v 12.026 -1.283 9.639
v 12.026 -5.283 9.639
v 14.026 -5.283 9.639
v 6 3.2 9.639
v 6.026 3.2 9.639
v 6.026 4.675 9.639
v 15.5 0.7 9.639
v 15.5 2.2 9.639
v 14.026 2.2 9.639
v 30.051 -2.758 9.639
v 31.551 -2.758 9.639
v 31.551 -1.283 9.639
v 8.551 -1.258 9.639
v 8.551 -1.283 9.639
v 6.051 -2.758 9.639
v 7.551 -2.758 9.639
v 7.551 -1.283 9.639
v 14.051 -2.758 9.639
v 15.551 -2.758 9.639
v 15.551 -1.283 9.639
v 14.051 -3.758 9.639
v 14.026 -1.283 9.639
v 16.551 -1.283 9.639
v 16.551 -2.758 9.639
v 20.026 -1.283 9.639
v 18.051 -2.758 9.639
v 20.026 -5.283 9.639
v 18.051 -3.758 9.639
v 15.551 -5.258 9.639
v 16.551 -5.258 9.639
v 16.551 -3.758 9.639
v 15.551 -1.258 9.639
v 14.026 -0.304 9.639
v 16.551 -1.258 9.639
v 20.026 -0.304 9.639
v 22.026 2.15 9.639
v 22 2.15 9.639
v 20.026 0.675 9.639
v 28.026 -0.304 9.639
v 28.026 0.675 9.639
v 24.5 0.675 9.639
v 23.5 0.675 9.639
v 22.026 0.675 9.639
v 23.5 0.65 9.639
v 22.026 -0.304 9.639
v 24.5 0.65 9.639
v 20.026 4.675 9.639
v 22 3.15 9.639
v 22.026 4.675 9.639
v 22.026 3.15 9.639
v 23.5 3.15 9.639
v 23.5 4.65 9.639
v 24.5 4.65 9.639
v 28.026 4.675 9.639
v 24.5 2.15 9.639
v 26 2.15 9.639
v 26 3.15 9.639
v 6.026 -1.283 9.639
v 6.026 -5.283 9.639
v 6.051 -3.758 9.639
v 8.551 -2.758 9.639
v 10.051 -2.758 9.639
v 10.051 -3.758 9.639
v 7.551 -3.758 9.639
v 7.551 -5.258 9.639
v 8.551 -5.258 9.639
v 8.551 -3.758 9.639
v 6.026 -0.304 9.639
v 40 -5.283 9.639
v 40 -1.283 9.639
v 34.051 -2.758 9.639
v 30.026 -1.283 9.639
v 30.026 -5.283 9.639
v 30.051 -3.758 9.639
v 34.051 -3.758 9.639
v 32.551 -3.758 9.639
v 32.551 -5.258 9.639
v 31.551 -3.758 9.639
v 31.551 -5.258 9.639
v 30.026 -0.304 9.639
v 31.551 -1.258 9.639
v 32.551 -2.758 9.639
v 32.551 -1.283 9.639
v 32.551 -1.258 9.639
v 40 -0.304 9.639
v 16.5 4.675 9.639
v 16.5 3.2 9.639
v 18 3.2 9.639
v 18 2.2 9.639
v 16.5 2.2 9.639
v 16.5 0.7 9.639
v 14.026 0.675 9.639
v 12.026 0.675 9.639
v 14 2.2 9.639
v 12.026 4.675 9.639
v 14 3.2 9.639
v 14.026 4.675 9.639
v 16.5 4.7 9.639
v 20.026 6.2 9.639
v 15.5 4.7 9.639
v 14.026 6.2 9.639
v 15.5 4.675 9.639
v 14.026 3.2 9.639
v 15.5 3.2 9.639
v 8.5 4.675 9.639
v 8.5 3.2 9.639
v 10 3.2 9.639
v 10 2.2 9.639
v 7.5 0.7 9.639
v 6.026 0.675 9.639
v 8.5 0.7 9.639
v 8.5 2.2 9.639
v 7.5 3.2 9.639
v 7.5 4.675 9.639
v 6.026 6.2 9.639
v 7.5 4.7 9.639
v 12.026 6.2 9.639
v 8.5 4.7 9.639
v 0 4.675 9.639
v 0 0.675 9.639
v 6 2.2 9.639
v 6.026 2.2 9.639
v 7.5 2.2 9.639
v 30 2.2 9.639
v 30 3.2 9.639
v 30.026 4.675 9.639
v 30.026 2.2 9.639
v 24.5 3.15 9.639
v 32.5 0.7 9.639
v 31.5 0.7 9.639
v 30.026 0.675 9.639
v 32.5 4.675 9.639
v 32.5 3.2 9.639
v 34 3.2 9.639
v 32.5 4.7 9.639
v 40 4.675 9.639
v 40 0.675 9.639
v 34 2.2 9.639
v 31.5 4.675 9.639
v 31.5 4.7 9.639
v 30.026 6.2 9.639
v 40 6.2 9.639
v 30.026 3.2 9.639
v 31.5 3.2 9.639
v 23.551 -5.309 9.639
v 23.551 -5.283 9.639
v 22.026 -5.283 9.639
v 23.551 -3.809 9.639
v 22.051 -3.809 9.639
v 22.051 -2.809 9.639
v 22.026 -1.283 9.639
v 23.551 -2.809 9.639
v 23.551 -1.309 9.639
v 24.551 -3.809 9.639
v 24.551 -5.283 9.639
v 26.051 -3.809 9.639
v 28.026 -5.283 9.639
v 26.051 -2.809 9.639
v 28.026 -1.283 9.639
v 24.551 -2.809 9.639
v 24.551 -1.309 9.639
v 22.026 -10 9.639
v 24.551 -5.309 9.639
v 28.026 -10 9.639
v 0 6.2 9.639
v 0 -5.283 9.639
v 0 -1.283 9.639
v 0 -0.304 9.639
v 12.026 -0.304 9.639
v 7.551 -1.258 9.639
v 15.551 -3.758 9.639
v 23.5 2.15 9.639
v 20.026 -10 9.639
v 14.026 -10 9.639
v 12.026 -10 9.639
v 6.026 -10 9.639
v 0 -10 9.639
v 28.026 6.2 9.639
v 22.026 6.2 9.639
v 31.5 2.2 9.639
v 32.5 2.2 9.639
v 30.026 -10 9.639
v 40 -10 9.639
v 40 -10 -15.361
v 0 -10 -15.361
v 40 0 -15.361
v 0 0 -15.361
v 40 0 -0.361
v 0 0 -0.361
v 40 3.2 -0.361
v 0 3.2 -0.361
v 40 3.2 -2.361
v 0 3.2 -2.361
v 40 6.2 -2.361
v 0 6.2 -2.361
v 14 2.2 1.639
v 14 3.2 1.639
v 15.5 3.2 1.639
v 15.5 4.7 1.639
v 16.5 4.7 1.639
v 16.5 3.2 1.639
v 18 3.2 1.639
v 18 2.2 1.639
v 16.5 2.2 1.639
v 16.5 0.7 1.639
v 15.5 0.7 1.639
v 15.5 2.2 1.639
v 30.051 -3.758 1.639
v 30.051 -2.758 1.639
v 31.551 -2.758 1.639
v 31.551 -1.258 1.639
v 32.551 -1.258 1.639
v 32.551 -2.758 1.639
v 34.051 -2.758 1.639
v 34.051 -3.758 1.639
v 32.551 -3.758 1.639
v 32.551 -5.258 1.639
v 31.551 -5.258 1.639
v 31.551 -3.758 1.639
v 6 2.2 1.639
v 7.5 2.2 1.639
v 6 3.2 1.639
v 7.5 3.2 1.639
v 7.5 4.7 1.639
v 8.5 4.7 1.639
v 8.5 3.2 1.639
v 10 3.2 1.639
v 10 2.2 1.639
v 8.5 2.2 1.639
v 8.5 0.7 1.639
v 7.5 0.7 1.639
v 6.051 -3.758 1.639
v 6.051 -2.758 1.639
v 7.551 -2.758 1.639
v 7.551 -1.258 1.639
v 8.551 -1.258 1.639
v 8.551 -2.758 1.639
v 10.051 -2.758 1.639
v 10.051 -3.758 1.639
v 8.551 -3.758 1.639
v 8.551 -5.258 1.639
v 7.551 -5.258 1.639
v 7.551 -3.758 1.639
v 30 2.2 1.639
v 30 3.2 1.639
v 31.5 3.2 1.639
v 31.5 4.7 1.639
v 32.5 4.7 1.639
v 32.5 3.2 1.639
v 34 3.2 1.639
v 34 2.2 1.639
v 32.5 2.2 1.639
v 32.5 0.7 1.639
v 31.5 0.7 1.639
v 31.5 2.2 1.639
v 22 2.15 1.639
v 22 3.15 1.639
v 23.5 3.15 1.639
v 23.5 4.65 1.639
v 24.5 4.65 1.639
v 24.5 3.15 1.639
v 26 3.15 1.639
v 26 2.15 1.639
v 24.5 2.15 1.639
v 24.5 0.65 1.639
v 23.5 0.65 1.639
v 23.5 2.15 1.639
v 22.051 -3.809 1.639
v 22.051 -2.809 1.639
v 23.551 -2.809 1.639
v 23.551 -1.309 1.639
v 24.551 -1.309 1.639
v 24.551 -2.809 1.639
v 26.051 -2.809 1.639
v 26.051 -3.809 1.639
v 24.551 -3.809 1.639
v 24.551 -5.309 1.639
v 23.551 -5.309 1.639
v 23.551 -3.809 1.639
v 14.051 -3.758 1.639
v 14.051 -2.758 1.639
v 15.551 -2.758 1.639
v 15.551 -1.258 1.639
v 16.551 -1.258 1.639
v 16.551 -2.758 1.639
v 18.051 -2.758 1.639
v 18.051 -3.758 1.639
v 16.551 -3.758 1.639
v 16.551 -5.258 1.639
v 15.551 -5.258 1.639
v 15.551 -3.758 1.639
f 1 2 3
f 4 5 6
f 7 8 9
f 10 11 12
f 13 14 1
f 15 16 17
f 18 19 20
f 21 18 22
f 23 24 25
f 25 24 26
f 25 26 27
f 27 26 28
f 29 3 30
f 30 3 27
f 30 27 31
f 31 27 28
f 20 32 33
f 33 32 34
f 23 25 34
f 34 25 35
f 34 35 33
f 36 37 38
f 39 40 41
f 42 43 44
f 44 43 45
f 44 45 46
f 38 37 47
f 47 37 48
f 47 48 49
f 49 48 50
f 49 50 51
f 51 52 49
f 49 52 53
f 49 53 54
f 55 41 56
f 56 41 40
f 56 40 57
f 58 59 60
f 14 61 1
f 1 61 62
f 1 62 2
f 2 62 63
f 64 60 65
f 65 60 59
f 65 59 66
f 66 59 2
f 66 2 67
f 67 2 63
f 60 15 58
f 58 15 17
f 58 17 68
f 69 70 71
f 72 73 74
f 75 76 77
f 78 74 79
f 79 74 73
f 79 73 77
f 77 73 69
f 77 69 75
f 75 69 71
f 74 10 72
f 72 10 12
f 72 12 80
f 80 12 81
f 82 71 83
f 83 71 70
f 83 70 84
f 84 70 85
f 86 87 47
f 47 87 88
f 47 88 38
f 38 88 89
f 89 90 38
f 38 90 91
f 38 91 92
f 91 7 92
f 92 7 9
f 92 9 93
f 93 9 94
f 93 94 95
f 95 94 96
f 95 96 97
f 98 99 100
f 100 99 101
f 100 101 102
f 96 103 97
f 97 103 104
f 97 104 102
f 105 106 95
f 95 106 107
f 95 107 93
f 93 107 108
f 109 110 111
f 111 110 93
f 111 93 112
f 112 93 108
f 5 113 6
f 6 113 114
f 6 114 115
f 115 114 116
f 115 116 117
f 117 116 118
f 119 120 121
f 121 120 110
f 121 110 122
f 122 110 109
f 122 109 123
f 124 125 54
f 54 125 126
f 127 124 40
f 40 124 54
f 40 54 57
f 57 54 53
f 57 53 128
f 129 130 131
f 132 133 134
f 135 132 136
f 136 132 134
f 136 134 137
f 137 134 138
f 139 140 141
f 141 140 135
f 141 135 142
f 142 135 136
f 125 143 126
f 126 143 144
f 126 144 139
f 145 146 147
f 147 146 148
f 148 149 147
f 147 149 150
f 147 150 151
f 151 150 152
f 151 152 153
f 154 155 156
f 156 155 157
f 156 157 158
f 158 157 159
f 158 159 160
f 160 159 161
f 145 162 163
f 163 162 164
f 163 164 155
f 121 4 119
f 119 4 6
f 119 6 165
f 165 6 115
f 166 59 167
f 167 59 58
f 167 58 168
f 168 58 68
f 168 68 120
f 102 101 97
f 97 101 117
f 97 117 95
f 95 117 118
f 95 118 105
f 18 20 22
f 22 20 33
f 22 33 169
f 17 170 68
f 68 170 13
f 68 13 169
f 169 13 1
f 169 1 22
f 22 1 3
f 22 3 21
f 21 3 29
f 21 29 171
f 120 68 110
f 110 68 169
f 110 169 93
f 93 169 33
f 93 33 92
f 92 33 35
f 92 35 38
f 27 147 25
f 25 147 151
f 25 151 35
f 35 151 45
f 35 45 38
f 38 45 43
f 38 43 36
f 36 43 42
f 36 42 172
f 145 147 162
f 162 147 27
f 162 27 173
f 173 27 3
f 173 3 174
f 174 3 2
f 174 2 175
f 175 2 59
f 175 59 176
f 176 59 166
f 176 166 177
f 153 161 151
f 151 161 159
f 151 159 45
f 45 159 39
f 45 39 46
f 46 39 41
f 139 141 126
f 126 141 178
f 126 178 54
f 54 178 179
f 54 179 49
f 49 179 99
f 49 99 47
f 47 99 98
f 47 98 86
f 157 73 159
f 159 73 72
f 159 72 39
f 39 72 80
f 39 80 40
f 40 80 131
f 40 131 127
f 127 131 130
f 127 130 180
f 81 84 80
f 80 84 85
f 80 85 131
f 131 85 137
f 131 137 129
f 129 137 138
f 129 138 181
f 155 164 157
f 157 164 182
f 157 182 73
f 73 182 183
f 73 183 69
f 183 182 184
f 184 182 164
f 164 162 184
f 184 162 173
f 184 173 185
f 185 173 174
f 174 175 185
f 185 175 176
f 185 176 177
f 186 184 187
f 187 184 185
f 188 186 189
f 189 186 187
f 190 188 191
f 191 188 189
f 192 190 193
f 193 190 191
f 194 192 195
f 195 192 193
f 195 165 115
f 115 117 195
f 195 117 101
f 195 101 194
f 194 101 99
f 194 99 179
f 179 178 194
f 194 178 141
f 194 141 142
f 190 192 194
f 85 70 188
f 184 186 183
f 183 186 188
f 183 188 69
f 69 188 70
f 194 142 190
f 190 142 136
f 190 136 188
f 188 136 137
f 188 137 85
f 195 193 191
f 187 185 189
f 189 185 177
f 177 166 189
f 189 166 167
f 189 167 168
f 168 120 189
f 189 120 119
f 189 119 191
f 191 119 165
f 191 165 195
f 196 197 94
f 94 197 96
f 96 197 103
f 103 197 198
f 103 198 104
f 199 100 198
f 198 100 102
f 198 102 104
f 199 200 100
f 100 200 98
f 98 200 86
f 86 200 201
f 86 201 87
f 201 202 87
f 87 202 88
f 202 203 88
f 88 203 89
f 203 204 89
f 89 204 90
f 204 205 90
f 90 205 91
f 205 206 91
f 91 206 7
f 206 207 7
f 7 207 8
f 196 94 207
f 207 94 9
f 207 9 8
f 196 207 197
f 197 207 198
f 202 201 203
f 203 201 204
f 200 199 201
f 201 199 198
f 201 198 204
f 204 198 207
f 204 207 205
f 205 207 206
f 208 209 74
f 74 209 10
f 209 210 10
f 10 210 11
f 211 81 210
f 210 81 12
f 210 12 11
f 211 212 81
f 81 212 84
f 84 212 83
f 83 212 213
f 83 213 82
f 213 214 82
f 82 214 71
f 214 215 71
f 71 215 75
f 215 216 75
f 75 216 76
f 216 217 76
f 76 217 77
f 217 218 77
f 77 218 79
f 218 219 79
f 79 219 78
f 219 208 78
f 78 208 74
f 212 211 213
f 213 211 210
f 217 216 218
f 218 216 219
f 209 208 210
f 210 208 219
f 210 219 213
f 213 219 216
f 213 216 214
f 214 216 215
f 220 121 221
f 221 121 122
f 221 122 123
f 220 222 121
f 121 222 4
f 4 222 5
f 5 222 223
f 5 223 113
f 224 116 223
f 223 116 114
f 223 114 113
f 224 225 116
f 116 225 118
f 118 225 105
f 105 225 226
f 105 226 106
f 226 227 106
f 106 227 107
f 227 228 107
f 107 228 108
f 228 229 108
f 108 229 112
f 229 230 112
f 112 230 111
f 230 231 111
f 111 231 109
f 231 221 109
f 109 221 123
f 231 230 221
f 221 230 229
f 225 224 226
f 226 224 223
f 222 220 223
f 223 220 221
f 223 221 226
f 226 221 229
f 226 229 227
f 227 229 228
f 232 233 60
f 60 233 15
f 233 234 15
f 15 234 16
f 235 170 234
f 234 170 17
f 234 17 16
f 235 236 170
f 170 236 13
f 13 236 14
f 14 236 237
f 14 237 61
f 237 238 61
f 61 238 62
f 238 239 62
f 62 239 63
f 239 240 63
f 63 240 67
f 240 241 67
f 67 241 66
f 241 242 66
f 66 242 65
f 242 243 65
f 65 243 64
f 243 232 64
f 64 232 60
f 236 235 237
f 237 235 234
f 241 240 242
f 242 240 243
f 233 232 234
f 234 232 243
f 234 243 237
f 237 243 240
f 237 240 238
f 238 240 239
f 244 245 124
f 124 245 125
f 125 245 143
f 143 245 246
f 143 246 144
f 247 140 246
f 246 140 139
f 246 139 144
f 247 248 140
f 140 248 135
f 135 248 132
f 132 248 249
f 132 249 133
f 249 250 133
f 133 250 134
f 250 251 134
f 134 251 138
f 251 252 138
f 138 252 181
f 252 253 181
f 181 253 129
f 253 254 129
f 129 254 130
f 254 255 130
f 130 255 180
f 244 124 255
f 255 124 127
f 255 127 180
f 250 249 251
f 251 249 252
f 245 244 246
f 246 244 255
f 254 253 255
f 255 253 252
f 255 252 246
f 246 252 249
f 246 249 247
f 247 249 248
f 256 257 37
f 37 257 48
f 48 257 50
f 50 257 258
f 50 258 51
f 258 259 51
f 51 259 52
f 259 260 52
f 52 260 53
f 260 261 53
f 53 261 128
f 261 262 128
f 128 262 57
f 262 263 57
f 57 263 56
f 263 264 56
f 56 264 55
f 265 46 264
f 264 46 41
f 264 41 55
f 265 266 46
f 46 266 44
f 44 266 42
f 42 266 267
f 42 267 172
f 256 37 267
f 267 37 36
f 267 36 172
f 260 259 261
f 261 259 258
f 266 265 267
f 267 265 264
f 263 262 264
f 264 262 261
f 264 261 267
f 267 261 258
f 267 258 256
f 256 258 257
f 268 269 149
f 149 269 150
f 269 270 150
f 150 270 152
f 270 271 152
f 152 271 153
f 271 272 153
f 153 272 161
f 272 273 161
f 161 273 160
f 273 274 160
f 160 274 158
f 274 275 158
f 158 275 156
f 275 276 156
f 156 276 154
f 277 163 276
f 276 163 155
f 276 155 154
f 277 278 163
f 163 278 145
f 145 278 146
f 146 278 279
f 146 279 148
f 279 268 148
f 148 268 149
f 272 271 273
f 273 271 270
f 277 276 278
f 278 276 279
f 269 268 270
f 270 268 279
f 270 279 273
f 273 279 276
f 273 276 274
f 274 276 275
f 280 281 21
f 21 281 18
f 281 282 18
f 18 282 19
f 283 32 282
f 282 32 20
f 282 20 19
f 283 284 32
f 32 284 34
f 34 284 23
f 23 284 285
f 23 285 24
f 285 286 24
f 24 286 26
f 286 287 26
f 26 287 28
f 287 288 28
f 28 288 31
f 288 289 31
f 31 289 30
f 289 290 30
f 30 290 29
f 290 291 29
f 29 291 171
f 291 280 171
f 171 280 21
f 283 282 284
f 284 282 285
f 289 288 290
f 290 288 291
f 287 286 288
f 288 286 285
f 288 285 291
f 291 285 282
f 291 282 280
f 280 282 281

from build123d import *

# Parameters (mm, degrees)
BOSS_EXTRUDE1_DEPTH = 40
CUT_EXTRUDE3_DEPTH  = 8


with BuildPart() as part:
    # Sketch1 → Boss-Extrude1 (new body)
    with BuildSketch(Plane(origin=(0, 0, 0), x_dir=(0, 0, -1), z_dir=(1, 0, 0))):
        Polygon((-9.638596491, 6.2), (2.361403509, 6.2), (2.361403509, 3.2), (0.361403509, 3.2), (0.361403509, 0), (15.361403509, 0), (15.361403509, -10), (-9.638596491, -10), align=None)
    extrude(amount=BOSS_EXTRUDE1_DEPTH)

    # Sketch2 → Cut-Extrude3 (cut)
    with BuildSketch(Plane.XY.offset(9.638596491)):
        Polygon((14, 2.2), (14, 3.2), (15.5, 3.2), (15.5, 4.7), (16.5, 4.7), (16.5, 3.2), (18, 3.2), (18, 2.2), (16.5, 2.2), (16.5, 0.7), (15.5, 0.7), (15.5, 2.2), align=None)
        Polygon((14.051371054, -3.758215043), (14.051371054, -2.758215043), (15.551371054, -2.758215043), (15.551371054, -1.258215043), (16.551371054, -1.258215043), (16.551371054, -2.758215043), (18.051371054, -2.758215043), (18.051371054, -3.758215043), (16.551371054, -3.758215043), (16.551371054, -5.258215043), (15.551371054, -5.258215043), (15.551371054, -3.758215043), align=None)
        Polygon((22.051371054, -3.808568011), (22.051371054, -2.808568011), (23.551371054, -2.808568011), (23.551371054, -1.308568011), (24.551371054, -1.308568011), (24.551371054, -2.808568011), (26.051371054, -2.808568011), (26.051371054, -3.808568011), (24.551371054, -3.808568011), (24.551371054, -5.308568011), (23.551371054, -5.308568011), (23.551371054, -3.808568011), align=None)
        Polygon((22, 2.149647032), (22, 3.149647032), (23.5, 3.149647032), (23.5, 4.649647032), (24.5, 4.649647032), (24.5, 3.149647032), (26, 3.149647032), (26, 2.149647032), (24.5, 2.149647032), (24.5, 0.649647032), (23.5, 0.649647032), (23.5, 2.149647032), align=None)
        Polygon((30, 2.2), (30, 3.2), (31.5, 3.2), (31.5, 4.7), (32.5, 4.7), (32.5, 3.2), (34, 3.2), (34, 2.2), (32.5, 2.2), (32.5, 0.7), (31.5, 0.7), (31.5, 2.2), align=None)
        Polygon((30.051371054, -3.758215043), (30.051371054, -2.758215043), (31.551371054, -2.758215043), (31.551371054, -1.258215043), (32.551371054, -1.258215043), (32.551371054, -2.758215043), (34.051371054, -2.758215043), (34.051371054, -3.758215043), (32.551371054, -3.758215043), (32.551371054, -5.258215043), (31.551371054, -5.258215043), (31.551371054, -3.758215043), align=None)
        Polygon((6, 2.2), (6, 3.2), (7.5, 3.2), (7.5, 4.7), (8.5, 4.7), (8.5, 3.2), (10, 3.2), (10, 2.2), (8.5, 2.2), (8.5, 0.7), (7.5, 0.7), (7.5, 2.2), align=None)
        Polygon((6.051371054, -2.758215043), (7.551371054, -2.758215043), (7.551371054, -1.258215043), (8.551371054, -1.258215043), (8.551371054, -2.758215043), (10.051371054, -2.758215043), (10.051371054, -3.758215043), (8.551371054, -3.758215043), (8.551371054, -5.258215043), (7.551371054, -5.258215043), (7.551371054, -3.758215043), (6.051371054, -3.758215043), align=None)
    extrude(amount=-CUT_EXTRUDE3_DEPTH, mode=Mode.SUBTRACT)


solid = part.part
